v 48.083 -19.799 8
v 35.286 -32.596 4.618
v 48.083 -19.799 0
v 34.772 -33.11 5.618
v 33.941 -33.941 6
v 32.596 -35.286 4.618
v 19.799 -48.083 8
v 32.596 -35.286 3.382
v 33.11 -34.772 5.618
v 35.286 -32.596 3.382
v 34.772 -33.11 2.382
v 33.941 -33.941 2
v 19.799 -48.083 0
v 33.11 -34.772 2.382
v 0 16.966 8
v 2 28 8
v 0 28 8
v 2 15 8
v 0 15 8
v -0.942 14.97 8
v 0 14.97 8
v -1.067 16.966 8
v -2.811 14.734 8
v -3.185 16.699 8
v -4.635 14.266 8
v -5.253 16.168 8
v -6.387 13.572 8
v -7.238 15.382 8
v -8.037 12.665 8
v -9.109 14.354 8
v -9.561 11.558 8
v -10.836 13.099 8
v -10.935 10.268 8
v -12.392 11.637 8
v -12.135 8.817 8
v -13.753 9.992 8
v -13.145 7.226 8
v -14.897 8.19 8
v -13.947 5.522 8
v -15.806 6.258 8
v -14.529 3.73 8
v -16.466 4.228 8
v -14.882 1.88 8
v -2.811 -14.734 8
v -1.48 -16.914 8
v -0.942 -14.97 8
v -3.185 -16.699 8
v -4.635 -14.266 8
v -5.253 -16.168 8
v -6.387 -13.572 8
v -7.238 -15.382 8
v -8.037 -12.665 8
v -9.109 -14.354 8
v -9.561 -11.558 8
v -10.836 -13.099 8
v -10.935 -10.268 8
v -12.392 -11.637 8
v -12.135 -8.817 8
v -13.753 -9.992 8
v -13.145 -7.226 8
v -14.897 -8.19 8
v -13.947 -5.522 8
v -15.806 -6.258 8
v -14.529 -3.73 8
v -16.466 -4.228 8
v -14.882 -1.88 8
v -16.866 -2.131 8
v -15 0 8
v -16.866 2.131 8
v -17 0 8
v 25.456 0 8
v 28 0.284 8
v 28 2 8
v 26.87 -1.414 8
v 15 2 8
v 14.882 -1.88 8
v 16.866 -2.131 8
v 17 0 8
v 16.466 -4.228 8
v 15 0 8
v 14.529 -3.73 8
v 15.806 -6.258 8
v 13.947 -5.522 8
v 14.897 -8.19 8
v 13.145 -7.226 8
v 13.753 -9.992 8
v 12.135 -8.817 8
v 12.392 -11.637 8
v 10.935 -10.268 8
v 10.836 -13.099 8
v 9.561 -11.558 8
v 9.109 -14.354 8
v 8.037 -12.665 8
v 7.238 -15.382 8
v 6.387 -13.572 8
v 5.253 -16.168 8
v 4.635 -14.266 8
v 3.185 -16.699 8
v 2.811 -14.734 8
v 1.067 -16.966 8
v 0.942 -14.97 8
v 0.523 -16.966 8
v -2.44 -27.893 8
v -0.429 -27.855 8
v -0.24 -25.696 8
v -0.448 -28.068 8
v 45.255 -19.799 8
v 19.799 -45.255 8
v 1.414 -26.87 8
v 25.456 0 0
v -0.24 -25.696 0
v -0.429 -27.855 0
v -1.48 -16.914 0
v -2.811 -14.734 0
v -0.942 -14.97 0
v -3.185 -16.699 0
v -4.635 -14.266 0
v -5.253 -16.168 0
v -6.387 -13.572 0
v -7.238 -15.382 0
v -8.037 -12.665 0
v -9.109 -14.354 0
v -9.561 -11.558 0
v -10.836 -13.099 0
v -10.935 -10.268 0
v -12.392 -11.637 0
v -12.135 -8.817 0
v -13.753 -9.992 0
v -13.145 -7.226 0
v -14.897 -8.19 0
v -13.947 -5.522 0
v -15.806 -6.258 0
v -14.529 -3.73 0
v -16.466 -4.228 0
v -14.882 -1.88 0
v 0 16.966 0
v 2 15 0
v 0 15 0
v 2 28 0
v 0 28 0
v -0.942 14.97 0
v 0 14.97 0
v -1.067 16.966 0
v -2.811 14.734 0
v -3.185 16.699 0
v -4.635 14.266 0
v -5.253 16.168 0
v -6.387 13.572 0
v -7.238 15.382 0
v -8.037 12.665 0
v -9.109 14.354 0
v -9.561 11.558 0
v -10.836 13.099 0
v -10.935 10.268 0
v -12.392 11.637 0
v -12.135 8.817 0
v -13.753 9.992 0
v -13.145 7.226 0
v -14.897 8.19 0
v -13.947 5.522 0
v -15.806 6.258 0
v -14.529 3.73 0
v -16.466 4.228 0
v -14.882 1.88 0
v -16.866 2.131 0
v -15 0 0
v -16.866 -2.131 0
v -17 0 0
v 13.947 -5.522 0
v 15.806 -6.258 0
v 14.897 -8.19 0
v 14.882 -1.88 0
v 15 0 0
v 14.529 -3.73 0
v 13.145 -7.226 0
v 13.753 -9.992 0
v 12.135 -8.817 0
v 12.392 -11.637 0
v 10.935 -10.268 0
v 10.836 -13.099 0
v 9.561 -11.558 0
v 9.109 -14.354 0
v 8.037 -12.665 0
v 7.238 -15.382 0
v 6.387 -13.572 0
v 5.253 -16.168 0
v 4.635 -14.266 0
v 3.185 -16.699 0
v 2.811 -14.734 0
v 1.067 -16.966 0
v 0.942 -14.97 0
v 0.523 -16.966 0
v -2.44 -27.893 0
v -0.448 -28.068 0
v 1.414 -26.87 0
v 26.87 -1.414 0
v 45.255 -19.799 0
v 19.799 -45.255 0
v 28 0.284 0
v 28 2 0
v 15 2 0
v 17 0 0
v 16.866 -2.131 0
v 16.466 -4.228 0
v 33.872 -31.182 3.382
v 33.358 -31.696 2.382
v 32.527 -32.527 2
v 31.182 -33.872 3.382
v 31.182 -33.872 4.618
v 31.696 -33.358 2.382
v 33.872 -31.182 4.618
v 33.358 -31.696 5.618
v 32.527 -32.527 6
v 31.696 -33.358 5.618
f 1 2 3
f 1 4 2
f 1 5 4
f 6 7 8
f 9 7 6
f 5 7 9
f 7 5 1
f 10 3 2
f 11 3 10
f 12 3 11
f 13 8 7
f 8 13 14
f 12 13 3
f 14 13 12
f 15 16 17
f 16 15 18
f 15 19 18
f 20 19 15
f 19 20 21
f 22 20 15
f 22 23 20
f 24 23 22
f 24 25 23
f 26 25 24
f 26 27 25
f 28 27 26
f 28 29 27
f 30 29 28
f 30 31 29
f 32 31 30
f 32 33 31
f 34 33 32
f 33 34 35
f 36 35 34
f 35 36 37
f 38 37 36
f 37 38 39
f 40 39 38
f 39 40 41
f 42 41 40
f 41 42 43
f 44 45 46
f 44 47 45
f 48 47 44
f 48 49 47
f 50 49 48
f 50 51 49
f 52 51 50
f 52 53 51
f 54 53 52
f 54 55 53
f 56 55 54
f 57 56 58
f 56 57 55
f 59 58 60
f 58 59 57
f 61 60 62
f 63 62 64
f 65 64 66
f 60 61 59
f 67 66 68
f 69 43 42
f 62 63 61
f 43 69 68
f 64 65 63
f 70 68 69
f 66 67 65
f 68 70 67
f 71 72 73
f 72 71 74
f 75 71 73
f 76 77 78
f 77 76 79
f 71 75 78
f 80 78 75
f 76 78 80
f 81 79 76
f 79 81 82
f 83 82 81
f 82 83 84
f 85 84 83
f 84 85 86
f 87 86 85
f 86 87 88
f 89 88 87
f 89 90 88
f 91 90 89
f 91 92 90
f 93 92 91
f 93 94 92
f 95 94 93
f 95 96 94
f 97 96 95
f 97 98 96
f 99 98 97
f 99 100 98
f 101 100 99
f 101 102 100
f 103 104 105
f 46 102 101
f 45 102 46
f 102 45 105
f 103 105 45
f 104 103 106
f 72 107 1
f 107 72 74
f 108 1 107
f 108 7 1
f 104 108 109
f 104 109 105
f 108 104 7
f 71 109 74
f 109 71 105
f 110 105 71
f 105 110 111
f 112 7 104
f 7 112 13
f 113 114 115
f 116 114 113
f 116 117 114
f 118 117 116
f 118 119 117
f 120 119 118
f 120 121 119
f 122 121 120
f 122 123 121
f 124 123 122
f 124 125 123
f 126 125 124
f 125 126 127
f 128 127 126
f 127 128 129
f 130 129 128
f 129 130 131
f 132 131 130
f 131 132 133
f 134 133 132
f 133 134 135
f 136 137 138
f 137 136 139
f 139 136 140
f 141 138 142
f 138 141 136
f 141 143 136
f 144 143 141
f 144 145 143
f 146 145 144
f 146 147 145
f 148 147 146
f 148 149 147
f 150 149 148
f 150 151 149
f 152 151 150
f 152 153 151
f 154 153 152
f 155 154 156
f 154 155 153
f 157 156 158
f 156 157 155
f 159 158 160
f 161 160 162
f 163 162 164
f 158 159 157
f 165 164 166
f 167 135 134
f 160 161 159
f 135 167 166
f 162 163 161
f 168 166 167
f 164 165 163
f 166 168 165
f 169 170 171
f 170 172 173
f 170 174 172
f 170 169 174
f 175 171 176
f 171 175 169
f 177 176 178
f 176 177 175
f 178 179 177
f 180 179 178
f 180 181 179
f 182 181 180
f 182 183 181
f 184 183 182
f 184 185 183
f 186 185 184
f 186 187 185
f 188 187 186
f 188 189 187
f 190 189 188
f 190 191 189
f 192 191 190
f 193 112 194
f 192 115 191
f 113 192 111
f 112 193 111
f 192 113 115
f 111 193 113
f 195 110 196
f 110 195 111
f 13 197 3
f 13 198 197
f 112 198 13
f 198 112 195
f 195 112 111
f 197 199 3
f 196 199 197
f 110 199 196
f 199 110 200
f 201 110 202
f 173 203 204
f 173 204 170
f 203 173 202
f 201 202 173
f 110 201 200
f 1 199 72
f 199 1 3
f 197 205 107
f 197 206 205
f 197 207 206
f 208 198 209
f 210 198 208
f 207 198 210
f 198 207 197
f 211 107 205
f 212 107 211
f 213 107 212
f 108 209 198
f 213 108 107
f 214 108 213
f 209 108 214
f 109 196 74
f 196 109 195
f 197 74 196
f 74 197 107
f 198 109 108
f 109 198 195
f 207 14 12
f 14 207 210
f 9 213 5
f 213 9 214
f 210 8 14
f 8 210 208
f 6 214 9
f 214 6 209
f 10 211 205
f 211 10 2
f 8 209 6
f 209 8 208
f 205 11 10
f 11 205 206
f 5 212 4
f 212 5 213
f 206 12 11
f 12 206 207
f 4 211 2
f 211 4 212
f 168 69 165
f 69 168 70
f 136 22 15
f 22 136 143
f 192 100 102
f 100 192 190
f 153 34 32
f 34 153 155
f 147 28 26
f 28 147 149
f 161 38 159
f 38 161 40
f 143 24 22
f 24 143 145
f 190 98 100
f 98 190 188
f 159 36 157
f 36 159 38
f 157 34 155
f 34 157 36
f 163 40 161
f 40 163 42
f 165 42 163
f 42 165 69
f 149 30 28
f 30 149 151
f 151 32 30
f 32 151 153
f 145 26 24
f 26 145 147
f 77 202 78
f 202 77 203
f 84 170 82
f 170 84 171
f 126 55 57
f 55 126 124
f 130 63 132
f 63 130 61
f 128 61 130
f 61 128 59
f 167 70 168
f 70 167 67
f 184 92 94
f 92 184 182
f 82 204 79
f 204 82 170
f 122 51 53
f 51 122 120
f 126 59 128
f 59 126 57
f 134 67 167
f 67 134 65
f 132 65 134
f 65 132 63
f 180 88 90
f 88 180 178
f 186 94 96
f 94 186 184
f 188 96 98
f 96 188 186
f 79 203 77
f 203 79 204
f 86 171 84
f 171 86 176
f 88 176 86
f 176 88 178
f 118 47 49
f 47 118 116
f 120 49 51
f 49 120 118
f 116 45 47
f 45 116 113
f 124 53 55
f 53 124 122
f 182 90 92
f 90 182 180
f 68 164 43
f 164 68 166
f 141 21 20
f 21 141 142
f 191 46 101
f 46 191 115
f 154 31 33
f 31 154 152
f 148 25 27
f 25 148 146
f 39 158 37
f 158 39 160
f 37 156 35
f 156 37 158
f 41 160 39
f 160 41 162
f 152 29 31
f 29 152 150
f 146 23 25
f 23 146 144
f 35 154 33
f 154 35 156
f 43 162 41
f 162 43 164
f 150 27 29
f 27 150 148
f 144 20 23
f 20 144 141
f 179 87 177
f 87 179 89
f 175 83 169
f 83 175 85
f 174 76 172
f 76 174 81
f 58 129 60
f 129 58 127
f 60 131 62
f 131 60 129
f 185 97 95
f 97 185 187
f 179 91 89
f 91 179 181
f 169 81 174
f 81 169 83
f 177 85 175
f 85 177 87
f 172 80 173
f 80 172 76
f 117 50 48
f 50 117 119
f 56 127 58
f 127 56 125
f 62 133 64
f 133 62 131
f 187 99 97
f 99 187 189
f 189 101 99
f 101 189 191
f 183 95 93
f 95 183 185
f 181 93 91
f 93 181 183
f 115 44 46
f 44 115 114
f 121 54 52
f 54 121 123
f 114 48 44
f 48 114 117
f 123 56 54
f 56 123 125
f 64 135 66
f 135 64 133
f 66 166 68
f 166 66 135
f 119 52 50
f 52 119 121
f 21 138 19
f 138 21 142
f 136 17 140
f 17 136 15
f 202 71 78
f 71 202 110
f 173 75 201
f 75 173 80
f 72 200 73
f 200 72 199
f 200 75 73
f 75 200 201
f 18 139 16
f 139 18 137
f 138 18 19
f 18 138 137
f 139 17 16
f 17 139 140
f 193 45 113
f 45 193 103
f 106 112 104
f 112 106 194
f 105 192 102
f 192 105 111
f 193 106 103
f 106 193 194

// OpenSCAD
/* [Dimensions] */
// Inner Diameter in mm
DIA = 30;//[10:60]

// height in mm
HEIGHT = 08; //[06:10]

// Strength in mm
STRENGTH = 02; //[01:05]

// Leg Length in mm
LEGLENGTH = 13; //[0:60]


// measures in mm

difference() {
    cylinder(HEIGHT,DIA/2+STRENGTH,DIA/2+STRENGTH,$fn=50);cylinder(HEIGHT,DIA/2,DIA/2,$fn=50); 
    cube([40,40,HEIGHT]);
    }//Tube Holder with opening
    
 
    
translate([DIA/2,0,0]) cube([LEGLENGTH,STRENGTH,HEIGHT]);//leg on x-axis
translate([0,DIA/2,0]) cube([STRENGTH,LEGLENGTH,HEIGHT]);//arm on y-axis
 
rotate([0,0,175])translate([-STRENGTH,DIA/2,0]) cube([STRENGTH,LEGLENGTH,HEIGHT]);//leg on y-axis
    

rotate([0,0,135])translate([-20-28,-40/2,0]) 
    difference(){
        cube([30,40,HEIGHT]);//Base
        translate([STRENGTH,STRENGTH,0])cube([30-2*STRENGTH,40-2*STRENGTH,HEIGHT]);
        rotate([0,90,0])translate([-HEIGHT/2,20,0])cylinder(h= 5, r=2, $fn=10);//Screw hole
    }
